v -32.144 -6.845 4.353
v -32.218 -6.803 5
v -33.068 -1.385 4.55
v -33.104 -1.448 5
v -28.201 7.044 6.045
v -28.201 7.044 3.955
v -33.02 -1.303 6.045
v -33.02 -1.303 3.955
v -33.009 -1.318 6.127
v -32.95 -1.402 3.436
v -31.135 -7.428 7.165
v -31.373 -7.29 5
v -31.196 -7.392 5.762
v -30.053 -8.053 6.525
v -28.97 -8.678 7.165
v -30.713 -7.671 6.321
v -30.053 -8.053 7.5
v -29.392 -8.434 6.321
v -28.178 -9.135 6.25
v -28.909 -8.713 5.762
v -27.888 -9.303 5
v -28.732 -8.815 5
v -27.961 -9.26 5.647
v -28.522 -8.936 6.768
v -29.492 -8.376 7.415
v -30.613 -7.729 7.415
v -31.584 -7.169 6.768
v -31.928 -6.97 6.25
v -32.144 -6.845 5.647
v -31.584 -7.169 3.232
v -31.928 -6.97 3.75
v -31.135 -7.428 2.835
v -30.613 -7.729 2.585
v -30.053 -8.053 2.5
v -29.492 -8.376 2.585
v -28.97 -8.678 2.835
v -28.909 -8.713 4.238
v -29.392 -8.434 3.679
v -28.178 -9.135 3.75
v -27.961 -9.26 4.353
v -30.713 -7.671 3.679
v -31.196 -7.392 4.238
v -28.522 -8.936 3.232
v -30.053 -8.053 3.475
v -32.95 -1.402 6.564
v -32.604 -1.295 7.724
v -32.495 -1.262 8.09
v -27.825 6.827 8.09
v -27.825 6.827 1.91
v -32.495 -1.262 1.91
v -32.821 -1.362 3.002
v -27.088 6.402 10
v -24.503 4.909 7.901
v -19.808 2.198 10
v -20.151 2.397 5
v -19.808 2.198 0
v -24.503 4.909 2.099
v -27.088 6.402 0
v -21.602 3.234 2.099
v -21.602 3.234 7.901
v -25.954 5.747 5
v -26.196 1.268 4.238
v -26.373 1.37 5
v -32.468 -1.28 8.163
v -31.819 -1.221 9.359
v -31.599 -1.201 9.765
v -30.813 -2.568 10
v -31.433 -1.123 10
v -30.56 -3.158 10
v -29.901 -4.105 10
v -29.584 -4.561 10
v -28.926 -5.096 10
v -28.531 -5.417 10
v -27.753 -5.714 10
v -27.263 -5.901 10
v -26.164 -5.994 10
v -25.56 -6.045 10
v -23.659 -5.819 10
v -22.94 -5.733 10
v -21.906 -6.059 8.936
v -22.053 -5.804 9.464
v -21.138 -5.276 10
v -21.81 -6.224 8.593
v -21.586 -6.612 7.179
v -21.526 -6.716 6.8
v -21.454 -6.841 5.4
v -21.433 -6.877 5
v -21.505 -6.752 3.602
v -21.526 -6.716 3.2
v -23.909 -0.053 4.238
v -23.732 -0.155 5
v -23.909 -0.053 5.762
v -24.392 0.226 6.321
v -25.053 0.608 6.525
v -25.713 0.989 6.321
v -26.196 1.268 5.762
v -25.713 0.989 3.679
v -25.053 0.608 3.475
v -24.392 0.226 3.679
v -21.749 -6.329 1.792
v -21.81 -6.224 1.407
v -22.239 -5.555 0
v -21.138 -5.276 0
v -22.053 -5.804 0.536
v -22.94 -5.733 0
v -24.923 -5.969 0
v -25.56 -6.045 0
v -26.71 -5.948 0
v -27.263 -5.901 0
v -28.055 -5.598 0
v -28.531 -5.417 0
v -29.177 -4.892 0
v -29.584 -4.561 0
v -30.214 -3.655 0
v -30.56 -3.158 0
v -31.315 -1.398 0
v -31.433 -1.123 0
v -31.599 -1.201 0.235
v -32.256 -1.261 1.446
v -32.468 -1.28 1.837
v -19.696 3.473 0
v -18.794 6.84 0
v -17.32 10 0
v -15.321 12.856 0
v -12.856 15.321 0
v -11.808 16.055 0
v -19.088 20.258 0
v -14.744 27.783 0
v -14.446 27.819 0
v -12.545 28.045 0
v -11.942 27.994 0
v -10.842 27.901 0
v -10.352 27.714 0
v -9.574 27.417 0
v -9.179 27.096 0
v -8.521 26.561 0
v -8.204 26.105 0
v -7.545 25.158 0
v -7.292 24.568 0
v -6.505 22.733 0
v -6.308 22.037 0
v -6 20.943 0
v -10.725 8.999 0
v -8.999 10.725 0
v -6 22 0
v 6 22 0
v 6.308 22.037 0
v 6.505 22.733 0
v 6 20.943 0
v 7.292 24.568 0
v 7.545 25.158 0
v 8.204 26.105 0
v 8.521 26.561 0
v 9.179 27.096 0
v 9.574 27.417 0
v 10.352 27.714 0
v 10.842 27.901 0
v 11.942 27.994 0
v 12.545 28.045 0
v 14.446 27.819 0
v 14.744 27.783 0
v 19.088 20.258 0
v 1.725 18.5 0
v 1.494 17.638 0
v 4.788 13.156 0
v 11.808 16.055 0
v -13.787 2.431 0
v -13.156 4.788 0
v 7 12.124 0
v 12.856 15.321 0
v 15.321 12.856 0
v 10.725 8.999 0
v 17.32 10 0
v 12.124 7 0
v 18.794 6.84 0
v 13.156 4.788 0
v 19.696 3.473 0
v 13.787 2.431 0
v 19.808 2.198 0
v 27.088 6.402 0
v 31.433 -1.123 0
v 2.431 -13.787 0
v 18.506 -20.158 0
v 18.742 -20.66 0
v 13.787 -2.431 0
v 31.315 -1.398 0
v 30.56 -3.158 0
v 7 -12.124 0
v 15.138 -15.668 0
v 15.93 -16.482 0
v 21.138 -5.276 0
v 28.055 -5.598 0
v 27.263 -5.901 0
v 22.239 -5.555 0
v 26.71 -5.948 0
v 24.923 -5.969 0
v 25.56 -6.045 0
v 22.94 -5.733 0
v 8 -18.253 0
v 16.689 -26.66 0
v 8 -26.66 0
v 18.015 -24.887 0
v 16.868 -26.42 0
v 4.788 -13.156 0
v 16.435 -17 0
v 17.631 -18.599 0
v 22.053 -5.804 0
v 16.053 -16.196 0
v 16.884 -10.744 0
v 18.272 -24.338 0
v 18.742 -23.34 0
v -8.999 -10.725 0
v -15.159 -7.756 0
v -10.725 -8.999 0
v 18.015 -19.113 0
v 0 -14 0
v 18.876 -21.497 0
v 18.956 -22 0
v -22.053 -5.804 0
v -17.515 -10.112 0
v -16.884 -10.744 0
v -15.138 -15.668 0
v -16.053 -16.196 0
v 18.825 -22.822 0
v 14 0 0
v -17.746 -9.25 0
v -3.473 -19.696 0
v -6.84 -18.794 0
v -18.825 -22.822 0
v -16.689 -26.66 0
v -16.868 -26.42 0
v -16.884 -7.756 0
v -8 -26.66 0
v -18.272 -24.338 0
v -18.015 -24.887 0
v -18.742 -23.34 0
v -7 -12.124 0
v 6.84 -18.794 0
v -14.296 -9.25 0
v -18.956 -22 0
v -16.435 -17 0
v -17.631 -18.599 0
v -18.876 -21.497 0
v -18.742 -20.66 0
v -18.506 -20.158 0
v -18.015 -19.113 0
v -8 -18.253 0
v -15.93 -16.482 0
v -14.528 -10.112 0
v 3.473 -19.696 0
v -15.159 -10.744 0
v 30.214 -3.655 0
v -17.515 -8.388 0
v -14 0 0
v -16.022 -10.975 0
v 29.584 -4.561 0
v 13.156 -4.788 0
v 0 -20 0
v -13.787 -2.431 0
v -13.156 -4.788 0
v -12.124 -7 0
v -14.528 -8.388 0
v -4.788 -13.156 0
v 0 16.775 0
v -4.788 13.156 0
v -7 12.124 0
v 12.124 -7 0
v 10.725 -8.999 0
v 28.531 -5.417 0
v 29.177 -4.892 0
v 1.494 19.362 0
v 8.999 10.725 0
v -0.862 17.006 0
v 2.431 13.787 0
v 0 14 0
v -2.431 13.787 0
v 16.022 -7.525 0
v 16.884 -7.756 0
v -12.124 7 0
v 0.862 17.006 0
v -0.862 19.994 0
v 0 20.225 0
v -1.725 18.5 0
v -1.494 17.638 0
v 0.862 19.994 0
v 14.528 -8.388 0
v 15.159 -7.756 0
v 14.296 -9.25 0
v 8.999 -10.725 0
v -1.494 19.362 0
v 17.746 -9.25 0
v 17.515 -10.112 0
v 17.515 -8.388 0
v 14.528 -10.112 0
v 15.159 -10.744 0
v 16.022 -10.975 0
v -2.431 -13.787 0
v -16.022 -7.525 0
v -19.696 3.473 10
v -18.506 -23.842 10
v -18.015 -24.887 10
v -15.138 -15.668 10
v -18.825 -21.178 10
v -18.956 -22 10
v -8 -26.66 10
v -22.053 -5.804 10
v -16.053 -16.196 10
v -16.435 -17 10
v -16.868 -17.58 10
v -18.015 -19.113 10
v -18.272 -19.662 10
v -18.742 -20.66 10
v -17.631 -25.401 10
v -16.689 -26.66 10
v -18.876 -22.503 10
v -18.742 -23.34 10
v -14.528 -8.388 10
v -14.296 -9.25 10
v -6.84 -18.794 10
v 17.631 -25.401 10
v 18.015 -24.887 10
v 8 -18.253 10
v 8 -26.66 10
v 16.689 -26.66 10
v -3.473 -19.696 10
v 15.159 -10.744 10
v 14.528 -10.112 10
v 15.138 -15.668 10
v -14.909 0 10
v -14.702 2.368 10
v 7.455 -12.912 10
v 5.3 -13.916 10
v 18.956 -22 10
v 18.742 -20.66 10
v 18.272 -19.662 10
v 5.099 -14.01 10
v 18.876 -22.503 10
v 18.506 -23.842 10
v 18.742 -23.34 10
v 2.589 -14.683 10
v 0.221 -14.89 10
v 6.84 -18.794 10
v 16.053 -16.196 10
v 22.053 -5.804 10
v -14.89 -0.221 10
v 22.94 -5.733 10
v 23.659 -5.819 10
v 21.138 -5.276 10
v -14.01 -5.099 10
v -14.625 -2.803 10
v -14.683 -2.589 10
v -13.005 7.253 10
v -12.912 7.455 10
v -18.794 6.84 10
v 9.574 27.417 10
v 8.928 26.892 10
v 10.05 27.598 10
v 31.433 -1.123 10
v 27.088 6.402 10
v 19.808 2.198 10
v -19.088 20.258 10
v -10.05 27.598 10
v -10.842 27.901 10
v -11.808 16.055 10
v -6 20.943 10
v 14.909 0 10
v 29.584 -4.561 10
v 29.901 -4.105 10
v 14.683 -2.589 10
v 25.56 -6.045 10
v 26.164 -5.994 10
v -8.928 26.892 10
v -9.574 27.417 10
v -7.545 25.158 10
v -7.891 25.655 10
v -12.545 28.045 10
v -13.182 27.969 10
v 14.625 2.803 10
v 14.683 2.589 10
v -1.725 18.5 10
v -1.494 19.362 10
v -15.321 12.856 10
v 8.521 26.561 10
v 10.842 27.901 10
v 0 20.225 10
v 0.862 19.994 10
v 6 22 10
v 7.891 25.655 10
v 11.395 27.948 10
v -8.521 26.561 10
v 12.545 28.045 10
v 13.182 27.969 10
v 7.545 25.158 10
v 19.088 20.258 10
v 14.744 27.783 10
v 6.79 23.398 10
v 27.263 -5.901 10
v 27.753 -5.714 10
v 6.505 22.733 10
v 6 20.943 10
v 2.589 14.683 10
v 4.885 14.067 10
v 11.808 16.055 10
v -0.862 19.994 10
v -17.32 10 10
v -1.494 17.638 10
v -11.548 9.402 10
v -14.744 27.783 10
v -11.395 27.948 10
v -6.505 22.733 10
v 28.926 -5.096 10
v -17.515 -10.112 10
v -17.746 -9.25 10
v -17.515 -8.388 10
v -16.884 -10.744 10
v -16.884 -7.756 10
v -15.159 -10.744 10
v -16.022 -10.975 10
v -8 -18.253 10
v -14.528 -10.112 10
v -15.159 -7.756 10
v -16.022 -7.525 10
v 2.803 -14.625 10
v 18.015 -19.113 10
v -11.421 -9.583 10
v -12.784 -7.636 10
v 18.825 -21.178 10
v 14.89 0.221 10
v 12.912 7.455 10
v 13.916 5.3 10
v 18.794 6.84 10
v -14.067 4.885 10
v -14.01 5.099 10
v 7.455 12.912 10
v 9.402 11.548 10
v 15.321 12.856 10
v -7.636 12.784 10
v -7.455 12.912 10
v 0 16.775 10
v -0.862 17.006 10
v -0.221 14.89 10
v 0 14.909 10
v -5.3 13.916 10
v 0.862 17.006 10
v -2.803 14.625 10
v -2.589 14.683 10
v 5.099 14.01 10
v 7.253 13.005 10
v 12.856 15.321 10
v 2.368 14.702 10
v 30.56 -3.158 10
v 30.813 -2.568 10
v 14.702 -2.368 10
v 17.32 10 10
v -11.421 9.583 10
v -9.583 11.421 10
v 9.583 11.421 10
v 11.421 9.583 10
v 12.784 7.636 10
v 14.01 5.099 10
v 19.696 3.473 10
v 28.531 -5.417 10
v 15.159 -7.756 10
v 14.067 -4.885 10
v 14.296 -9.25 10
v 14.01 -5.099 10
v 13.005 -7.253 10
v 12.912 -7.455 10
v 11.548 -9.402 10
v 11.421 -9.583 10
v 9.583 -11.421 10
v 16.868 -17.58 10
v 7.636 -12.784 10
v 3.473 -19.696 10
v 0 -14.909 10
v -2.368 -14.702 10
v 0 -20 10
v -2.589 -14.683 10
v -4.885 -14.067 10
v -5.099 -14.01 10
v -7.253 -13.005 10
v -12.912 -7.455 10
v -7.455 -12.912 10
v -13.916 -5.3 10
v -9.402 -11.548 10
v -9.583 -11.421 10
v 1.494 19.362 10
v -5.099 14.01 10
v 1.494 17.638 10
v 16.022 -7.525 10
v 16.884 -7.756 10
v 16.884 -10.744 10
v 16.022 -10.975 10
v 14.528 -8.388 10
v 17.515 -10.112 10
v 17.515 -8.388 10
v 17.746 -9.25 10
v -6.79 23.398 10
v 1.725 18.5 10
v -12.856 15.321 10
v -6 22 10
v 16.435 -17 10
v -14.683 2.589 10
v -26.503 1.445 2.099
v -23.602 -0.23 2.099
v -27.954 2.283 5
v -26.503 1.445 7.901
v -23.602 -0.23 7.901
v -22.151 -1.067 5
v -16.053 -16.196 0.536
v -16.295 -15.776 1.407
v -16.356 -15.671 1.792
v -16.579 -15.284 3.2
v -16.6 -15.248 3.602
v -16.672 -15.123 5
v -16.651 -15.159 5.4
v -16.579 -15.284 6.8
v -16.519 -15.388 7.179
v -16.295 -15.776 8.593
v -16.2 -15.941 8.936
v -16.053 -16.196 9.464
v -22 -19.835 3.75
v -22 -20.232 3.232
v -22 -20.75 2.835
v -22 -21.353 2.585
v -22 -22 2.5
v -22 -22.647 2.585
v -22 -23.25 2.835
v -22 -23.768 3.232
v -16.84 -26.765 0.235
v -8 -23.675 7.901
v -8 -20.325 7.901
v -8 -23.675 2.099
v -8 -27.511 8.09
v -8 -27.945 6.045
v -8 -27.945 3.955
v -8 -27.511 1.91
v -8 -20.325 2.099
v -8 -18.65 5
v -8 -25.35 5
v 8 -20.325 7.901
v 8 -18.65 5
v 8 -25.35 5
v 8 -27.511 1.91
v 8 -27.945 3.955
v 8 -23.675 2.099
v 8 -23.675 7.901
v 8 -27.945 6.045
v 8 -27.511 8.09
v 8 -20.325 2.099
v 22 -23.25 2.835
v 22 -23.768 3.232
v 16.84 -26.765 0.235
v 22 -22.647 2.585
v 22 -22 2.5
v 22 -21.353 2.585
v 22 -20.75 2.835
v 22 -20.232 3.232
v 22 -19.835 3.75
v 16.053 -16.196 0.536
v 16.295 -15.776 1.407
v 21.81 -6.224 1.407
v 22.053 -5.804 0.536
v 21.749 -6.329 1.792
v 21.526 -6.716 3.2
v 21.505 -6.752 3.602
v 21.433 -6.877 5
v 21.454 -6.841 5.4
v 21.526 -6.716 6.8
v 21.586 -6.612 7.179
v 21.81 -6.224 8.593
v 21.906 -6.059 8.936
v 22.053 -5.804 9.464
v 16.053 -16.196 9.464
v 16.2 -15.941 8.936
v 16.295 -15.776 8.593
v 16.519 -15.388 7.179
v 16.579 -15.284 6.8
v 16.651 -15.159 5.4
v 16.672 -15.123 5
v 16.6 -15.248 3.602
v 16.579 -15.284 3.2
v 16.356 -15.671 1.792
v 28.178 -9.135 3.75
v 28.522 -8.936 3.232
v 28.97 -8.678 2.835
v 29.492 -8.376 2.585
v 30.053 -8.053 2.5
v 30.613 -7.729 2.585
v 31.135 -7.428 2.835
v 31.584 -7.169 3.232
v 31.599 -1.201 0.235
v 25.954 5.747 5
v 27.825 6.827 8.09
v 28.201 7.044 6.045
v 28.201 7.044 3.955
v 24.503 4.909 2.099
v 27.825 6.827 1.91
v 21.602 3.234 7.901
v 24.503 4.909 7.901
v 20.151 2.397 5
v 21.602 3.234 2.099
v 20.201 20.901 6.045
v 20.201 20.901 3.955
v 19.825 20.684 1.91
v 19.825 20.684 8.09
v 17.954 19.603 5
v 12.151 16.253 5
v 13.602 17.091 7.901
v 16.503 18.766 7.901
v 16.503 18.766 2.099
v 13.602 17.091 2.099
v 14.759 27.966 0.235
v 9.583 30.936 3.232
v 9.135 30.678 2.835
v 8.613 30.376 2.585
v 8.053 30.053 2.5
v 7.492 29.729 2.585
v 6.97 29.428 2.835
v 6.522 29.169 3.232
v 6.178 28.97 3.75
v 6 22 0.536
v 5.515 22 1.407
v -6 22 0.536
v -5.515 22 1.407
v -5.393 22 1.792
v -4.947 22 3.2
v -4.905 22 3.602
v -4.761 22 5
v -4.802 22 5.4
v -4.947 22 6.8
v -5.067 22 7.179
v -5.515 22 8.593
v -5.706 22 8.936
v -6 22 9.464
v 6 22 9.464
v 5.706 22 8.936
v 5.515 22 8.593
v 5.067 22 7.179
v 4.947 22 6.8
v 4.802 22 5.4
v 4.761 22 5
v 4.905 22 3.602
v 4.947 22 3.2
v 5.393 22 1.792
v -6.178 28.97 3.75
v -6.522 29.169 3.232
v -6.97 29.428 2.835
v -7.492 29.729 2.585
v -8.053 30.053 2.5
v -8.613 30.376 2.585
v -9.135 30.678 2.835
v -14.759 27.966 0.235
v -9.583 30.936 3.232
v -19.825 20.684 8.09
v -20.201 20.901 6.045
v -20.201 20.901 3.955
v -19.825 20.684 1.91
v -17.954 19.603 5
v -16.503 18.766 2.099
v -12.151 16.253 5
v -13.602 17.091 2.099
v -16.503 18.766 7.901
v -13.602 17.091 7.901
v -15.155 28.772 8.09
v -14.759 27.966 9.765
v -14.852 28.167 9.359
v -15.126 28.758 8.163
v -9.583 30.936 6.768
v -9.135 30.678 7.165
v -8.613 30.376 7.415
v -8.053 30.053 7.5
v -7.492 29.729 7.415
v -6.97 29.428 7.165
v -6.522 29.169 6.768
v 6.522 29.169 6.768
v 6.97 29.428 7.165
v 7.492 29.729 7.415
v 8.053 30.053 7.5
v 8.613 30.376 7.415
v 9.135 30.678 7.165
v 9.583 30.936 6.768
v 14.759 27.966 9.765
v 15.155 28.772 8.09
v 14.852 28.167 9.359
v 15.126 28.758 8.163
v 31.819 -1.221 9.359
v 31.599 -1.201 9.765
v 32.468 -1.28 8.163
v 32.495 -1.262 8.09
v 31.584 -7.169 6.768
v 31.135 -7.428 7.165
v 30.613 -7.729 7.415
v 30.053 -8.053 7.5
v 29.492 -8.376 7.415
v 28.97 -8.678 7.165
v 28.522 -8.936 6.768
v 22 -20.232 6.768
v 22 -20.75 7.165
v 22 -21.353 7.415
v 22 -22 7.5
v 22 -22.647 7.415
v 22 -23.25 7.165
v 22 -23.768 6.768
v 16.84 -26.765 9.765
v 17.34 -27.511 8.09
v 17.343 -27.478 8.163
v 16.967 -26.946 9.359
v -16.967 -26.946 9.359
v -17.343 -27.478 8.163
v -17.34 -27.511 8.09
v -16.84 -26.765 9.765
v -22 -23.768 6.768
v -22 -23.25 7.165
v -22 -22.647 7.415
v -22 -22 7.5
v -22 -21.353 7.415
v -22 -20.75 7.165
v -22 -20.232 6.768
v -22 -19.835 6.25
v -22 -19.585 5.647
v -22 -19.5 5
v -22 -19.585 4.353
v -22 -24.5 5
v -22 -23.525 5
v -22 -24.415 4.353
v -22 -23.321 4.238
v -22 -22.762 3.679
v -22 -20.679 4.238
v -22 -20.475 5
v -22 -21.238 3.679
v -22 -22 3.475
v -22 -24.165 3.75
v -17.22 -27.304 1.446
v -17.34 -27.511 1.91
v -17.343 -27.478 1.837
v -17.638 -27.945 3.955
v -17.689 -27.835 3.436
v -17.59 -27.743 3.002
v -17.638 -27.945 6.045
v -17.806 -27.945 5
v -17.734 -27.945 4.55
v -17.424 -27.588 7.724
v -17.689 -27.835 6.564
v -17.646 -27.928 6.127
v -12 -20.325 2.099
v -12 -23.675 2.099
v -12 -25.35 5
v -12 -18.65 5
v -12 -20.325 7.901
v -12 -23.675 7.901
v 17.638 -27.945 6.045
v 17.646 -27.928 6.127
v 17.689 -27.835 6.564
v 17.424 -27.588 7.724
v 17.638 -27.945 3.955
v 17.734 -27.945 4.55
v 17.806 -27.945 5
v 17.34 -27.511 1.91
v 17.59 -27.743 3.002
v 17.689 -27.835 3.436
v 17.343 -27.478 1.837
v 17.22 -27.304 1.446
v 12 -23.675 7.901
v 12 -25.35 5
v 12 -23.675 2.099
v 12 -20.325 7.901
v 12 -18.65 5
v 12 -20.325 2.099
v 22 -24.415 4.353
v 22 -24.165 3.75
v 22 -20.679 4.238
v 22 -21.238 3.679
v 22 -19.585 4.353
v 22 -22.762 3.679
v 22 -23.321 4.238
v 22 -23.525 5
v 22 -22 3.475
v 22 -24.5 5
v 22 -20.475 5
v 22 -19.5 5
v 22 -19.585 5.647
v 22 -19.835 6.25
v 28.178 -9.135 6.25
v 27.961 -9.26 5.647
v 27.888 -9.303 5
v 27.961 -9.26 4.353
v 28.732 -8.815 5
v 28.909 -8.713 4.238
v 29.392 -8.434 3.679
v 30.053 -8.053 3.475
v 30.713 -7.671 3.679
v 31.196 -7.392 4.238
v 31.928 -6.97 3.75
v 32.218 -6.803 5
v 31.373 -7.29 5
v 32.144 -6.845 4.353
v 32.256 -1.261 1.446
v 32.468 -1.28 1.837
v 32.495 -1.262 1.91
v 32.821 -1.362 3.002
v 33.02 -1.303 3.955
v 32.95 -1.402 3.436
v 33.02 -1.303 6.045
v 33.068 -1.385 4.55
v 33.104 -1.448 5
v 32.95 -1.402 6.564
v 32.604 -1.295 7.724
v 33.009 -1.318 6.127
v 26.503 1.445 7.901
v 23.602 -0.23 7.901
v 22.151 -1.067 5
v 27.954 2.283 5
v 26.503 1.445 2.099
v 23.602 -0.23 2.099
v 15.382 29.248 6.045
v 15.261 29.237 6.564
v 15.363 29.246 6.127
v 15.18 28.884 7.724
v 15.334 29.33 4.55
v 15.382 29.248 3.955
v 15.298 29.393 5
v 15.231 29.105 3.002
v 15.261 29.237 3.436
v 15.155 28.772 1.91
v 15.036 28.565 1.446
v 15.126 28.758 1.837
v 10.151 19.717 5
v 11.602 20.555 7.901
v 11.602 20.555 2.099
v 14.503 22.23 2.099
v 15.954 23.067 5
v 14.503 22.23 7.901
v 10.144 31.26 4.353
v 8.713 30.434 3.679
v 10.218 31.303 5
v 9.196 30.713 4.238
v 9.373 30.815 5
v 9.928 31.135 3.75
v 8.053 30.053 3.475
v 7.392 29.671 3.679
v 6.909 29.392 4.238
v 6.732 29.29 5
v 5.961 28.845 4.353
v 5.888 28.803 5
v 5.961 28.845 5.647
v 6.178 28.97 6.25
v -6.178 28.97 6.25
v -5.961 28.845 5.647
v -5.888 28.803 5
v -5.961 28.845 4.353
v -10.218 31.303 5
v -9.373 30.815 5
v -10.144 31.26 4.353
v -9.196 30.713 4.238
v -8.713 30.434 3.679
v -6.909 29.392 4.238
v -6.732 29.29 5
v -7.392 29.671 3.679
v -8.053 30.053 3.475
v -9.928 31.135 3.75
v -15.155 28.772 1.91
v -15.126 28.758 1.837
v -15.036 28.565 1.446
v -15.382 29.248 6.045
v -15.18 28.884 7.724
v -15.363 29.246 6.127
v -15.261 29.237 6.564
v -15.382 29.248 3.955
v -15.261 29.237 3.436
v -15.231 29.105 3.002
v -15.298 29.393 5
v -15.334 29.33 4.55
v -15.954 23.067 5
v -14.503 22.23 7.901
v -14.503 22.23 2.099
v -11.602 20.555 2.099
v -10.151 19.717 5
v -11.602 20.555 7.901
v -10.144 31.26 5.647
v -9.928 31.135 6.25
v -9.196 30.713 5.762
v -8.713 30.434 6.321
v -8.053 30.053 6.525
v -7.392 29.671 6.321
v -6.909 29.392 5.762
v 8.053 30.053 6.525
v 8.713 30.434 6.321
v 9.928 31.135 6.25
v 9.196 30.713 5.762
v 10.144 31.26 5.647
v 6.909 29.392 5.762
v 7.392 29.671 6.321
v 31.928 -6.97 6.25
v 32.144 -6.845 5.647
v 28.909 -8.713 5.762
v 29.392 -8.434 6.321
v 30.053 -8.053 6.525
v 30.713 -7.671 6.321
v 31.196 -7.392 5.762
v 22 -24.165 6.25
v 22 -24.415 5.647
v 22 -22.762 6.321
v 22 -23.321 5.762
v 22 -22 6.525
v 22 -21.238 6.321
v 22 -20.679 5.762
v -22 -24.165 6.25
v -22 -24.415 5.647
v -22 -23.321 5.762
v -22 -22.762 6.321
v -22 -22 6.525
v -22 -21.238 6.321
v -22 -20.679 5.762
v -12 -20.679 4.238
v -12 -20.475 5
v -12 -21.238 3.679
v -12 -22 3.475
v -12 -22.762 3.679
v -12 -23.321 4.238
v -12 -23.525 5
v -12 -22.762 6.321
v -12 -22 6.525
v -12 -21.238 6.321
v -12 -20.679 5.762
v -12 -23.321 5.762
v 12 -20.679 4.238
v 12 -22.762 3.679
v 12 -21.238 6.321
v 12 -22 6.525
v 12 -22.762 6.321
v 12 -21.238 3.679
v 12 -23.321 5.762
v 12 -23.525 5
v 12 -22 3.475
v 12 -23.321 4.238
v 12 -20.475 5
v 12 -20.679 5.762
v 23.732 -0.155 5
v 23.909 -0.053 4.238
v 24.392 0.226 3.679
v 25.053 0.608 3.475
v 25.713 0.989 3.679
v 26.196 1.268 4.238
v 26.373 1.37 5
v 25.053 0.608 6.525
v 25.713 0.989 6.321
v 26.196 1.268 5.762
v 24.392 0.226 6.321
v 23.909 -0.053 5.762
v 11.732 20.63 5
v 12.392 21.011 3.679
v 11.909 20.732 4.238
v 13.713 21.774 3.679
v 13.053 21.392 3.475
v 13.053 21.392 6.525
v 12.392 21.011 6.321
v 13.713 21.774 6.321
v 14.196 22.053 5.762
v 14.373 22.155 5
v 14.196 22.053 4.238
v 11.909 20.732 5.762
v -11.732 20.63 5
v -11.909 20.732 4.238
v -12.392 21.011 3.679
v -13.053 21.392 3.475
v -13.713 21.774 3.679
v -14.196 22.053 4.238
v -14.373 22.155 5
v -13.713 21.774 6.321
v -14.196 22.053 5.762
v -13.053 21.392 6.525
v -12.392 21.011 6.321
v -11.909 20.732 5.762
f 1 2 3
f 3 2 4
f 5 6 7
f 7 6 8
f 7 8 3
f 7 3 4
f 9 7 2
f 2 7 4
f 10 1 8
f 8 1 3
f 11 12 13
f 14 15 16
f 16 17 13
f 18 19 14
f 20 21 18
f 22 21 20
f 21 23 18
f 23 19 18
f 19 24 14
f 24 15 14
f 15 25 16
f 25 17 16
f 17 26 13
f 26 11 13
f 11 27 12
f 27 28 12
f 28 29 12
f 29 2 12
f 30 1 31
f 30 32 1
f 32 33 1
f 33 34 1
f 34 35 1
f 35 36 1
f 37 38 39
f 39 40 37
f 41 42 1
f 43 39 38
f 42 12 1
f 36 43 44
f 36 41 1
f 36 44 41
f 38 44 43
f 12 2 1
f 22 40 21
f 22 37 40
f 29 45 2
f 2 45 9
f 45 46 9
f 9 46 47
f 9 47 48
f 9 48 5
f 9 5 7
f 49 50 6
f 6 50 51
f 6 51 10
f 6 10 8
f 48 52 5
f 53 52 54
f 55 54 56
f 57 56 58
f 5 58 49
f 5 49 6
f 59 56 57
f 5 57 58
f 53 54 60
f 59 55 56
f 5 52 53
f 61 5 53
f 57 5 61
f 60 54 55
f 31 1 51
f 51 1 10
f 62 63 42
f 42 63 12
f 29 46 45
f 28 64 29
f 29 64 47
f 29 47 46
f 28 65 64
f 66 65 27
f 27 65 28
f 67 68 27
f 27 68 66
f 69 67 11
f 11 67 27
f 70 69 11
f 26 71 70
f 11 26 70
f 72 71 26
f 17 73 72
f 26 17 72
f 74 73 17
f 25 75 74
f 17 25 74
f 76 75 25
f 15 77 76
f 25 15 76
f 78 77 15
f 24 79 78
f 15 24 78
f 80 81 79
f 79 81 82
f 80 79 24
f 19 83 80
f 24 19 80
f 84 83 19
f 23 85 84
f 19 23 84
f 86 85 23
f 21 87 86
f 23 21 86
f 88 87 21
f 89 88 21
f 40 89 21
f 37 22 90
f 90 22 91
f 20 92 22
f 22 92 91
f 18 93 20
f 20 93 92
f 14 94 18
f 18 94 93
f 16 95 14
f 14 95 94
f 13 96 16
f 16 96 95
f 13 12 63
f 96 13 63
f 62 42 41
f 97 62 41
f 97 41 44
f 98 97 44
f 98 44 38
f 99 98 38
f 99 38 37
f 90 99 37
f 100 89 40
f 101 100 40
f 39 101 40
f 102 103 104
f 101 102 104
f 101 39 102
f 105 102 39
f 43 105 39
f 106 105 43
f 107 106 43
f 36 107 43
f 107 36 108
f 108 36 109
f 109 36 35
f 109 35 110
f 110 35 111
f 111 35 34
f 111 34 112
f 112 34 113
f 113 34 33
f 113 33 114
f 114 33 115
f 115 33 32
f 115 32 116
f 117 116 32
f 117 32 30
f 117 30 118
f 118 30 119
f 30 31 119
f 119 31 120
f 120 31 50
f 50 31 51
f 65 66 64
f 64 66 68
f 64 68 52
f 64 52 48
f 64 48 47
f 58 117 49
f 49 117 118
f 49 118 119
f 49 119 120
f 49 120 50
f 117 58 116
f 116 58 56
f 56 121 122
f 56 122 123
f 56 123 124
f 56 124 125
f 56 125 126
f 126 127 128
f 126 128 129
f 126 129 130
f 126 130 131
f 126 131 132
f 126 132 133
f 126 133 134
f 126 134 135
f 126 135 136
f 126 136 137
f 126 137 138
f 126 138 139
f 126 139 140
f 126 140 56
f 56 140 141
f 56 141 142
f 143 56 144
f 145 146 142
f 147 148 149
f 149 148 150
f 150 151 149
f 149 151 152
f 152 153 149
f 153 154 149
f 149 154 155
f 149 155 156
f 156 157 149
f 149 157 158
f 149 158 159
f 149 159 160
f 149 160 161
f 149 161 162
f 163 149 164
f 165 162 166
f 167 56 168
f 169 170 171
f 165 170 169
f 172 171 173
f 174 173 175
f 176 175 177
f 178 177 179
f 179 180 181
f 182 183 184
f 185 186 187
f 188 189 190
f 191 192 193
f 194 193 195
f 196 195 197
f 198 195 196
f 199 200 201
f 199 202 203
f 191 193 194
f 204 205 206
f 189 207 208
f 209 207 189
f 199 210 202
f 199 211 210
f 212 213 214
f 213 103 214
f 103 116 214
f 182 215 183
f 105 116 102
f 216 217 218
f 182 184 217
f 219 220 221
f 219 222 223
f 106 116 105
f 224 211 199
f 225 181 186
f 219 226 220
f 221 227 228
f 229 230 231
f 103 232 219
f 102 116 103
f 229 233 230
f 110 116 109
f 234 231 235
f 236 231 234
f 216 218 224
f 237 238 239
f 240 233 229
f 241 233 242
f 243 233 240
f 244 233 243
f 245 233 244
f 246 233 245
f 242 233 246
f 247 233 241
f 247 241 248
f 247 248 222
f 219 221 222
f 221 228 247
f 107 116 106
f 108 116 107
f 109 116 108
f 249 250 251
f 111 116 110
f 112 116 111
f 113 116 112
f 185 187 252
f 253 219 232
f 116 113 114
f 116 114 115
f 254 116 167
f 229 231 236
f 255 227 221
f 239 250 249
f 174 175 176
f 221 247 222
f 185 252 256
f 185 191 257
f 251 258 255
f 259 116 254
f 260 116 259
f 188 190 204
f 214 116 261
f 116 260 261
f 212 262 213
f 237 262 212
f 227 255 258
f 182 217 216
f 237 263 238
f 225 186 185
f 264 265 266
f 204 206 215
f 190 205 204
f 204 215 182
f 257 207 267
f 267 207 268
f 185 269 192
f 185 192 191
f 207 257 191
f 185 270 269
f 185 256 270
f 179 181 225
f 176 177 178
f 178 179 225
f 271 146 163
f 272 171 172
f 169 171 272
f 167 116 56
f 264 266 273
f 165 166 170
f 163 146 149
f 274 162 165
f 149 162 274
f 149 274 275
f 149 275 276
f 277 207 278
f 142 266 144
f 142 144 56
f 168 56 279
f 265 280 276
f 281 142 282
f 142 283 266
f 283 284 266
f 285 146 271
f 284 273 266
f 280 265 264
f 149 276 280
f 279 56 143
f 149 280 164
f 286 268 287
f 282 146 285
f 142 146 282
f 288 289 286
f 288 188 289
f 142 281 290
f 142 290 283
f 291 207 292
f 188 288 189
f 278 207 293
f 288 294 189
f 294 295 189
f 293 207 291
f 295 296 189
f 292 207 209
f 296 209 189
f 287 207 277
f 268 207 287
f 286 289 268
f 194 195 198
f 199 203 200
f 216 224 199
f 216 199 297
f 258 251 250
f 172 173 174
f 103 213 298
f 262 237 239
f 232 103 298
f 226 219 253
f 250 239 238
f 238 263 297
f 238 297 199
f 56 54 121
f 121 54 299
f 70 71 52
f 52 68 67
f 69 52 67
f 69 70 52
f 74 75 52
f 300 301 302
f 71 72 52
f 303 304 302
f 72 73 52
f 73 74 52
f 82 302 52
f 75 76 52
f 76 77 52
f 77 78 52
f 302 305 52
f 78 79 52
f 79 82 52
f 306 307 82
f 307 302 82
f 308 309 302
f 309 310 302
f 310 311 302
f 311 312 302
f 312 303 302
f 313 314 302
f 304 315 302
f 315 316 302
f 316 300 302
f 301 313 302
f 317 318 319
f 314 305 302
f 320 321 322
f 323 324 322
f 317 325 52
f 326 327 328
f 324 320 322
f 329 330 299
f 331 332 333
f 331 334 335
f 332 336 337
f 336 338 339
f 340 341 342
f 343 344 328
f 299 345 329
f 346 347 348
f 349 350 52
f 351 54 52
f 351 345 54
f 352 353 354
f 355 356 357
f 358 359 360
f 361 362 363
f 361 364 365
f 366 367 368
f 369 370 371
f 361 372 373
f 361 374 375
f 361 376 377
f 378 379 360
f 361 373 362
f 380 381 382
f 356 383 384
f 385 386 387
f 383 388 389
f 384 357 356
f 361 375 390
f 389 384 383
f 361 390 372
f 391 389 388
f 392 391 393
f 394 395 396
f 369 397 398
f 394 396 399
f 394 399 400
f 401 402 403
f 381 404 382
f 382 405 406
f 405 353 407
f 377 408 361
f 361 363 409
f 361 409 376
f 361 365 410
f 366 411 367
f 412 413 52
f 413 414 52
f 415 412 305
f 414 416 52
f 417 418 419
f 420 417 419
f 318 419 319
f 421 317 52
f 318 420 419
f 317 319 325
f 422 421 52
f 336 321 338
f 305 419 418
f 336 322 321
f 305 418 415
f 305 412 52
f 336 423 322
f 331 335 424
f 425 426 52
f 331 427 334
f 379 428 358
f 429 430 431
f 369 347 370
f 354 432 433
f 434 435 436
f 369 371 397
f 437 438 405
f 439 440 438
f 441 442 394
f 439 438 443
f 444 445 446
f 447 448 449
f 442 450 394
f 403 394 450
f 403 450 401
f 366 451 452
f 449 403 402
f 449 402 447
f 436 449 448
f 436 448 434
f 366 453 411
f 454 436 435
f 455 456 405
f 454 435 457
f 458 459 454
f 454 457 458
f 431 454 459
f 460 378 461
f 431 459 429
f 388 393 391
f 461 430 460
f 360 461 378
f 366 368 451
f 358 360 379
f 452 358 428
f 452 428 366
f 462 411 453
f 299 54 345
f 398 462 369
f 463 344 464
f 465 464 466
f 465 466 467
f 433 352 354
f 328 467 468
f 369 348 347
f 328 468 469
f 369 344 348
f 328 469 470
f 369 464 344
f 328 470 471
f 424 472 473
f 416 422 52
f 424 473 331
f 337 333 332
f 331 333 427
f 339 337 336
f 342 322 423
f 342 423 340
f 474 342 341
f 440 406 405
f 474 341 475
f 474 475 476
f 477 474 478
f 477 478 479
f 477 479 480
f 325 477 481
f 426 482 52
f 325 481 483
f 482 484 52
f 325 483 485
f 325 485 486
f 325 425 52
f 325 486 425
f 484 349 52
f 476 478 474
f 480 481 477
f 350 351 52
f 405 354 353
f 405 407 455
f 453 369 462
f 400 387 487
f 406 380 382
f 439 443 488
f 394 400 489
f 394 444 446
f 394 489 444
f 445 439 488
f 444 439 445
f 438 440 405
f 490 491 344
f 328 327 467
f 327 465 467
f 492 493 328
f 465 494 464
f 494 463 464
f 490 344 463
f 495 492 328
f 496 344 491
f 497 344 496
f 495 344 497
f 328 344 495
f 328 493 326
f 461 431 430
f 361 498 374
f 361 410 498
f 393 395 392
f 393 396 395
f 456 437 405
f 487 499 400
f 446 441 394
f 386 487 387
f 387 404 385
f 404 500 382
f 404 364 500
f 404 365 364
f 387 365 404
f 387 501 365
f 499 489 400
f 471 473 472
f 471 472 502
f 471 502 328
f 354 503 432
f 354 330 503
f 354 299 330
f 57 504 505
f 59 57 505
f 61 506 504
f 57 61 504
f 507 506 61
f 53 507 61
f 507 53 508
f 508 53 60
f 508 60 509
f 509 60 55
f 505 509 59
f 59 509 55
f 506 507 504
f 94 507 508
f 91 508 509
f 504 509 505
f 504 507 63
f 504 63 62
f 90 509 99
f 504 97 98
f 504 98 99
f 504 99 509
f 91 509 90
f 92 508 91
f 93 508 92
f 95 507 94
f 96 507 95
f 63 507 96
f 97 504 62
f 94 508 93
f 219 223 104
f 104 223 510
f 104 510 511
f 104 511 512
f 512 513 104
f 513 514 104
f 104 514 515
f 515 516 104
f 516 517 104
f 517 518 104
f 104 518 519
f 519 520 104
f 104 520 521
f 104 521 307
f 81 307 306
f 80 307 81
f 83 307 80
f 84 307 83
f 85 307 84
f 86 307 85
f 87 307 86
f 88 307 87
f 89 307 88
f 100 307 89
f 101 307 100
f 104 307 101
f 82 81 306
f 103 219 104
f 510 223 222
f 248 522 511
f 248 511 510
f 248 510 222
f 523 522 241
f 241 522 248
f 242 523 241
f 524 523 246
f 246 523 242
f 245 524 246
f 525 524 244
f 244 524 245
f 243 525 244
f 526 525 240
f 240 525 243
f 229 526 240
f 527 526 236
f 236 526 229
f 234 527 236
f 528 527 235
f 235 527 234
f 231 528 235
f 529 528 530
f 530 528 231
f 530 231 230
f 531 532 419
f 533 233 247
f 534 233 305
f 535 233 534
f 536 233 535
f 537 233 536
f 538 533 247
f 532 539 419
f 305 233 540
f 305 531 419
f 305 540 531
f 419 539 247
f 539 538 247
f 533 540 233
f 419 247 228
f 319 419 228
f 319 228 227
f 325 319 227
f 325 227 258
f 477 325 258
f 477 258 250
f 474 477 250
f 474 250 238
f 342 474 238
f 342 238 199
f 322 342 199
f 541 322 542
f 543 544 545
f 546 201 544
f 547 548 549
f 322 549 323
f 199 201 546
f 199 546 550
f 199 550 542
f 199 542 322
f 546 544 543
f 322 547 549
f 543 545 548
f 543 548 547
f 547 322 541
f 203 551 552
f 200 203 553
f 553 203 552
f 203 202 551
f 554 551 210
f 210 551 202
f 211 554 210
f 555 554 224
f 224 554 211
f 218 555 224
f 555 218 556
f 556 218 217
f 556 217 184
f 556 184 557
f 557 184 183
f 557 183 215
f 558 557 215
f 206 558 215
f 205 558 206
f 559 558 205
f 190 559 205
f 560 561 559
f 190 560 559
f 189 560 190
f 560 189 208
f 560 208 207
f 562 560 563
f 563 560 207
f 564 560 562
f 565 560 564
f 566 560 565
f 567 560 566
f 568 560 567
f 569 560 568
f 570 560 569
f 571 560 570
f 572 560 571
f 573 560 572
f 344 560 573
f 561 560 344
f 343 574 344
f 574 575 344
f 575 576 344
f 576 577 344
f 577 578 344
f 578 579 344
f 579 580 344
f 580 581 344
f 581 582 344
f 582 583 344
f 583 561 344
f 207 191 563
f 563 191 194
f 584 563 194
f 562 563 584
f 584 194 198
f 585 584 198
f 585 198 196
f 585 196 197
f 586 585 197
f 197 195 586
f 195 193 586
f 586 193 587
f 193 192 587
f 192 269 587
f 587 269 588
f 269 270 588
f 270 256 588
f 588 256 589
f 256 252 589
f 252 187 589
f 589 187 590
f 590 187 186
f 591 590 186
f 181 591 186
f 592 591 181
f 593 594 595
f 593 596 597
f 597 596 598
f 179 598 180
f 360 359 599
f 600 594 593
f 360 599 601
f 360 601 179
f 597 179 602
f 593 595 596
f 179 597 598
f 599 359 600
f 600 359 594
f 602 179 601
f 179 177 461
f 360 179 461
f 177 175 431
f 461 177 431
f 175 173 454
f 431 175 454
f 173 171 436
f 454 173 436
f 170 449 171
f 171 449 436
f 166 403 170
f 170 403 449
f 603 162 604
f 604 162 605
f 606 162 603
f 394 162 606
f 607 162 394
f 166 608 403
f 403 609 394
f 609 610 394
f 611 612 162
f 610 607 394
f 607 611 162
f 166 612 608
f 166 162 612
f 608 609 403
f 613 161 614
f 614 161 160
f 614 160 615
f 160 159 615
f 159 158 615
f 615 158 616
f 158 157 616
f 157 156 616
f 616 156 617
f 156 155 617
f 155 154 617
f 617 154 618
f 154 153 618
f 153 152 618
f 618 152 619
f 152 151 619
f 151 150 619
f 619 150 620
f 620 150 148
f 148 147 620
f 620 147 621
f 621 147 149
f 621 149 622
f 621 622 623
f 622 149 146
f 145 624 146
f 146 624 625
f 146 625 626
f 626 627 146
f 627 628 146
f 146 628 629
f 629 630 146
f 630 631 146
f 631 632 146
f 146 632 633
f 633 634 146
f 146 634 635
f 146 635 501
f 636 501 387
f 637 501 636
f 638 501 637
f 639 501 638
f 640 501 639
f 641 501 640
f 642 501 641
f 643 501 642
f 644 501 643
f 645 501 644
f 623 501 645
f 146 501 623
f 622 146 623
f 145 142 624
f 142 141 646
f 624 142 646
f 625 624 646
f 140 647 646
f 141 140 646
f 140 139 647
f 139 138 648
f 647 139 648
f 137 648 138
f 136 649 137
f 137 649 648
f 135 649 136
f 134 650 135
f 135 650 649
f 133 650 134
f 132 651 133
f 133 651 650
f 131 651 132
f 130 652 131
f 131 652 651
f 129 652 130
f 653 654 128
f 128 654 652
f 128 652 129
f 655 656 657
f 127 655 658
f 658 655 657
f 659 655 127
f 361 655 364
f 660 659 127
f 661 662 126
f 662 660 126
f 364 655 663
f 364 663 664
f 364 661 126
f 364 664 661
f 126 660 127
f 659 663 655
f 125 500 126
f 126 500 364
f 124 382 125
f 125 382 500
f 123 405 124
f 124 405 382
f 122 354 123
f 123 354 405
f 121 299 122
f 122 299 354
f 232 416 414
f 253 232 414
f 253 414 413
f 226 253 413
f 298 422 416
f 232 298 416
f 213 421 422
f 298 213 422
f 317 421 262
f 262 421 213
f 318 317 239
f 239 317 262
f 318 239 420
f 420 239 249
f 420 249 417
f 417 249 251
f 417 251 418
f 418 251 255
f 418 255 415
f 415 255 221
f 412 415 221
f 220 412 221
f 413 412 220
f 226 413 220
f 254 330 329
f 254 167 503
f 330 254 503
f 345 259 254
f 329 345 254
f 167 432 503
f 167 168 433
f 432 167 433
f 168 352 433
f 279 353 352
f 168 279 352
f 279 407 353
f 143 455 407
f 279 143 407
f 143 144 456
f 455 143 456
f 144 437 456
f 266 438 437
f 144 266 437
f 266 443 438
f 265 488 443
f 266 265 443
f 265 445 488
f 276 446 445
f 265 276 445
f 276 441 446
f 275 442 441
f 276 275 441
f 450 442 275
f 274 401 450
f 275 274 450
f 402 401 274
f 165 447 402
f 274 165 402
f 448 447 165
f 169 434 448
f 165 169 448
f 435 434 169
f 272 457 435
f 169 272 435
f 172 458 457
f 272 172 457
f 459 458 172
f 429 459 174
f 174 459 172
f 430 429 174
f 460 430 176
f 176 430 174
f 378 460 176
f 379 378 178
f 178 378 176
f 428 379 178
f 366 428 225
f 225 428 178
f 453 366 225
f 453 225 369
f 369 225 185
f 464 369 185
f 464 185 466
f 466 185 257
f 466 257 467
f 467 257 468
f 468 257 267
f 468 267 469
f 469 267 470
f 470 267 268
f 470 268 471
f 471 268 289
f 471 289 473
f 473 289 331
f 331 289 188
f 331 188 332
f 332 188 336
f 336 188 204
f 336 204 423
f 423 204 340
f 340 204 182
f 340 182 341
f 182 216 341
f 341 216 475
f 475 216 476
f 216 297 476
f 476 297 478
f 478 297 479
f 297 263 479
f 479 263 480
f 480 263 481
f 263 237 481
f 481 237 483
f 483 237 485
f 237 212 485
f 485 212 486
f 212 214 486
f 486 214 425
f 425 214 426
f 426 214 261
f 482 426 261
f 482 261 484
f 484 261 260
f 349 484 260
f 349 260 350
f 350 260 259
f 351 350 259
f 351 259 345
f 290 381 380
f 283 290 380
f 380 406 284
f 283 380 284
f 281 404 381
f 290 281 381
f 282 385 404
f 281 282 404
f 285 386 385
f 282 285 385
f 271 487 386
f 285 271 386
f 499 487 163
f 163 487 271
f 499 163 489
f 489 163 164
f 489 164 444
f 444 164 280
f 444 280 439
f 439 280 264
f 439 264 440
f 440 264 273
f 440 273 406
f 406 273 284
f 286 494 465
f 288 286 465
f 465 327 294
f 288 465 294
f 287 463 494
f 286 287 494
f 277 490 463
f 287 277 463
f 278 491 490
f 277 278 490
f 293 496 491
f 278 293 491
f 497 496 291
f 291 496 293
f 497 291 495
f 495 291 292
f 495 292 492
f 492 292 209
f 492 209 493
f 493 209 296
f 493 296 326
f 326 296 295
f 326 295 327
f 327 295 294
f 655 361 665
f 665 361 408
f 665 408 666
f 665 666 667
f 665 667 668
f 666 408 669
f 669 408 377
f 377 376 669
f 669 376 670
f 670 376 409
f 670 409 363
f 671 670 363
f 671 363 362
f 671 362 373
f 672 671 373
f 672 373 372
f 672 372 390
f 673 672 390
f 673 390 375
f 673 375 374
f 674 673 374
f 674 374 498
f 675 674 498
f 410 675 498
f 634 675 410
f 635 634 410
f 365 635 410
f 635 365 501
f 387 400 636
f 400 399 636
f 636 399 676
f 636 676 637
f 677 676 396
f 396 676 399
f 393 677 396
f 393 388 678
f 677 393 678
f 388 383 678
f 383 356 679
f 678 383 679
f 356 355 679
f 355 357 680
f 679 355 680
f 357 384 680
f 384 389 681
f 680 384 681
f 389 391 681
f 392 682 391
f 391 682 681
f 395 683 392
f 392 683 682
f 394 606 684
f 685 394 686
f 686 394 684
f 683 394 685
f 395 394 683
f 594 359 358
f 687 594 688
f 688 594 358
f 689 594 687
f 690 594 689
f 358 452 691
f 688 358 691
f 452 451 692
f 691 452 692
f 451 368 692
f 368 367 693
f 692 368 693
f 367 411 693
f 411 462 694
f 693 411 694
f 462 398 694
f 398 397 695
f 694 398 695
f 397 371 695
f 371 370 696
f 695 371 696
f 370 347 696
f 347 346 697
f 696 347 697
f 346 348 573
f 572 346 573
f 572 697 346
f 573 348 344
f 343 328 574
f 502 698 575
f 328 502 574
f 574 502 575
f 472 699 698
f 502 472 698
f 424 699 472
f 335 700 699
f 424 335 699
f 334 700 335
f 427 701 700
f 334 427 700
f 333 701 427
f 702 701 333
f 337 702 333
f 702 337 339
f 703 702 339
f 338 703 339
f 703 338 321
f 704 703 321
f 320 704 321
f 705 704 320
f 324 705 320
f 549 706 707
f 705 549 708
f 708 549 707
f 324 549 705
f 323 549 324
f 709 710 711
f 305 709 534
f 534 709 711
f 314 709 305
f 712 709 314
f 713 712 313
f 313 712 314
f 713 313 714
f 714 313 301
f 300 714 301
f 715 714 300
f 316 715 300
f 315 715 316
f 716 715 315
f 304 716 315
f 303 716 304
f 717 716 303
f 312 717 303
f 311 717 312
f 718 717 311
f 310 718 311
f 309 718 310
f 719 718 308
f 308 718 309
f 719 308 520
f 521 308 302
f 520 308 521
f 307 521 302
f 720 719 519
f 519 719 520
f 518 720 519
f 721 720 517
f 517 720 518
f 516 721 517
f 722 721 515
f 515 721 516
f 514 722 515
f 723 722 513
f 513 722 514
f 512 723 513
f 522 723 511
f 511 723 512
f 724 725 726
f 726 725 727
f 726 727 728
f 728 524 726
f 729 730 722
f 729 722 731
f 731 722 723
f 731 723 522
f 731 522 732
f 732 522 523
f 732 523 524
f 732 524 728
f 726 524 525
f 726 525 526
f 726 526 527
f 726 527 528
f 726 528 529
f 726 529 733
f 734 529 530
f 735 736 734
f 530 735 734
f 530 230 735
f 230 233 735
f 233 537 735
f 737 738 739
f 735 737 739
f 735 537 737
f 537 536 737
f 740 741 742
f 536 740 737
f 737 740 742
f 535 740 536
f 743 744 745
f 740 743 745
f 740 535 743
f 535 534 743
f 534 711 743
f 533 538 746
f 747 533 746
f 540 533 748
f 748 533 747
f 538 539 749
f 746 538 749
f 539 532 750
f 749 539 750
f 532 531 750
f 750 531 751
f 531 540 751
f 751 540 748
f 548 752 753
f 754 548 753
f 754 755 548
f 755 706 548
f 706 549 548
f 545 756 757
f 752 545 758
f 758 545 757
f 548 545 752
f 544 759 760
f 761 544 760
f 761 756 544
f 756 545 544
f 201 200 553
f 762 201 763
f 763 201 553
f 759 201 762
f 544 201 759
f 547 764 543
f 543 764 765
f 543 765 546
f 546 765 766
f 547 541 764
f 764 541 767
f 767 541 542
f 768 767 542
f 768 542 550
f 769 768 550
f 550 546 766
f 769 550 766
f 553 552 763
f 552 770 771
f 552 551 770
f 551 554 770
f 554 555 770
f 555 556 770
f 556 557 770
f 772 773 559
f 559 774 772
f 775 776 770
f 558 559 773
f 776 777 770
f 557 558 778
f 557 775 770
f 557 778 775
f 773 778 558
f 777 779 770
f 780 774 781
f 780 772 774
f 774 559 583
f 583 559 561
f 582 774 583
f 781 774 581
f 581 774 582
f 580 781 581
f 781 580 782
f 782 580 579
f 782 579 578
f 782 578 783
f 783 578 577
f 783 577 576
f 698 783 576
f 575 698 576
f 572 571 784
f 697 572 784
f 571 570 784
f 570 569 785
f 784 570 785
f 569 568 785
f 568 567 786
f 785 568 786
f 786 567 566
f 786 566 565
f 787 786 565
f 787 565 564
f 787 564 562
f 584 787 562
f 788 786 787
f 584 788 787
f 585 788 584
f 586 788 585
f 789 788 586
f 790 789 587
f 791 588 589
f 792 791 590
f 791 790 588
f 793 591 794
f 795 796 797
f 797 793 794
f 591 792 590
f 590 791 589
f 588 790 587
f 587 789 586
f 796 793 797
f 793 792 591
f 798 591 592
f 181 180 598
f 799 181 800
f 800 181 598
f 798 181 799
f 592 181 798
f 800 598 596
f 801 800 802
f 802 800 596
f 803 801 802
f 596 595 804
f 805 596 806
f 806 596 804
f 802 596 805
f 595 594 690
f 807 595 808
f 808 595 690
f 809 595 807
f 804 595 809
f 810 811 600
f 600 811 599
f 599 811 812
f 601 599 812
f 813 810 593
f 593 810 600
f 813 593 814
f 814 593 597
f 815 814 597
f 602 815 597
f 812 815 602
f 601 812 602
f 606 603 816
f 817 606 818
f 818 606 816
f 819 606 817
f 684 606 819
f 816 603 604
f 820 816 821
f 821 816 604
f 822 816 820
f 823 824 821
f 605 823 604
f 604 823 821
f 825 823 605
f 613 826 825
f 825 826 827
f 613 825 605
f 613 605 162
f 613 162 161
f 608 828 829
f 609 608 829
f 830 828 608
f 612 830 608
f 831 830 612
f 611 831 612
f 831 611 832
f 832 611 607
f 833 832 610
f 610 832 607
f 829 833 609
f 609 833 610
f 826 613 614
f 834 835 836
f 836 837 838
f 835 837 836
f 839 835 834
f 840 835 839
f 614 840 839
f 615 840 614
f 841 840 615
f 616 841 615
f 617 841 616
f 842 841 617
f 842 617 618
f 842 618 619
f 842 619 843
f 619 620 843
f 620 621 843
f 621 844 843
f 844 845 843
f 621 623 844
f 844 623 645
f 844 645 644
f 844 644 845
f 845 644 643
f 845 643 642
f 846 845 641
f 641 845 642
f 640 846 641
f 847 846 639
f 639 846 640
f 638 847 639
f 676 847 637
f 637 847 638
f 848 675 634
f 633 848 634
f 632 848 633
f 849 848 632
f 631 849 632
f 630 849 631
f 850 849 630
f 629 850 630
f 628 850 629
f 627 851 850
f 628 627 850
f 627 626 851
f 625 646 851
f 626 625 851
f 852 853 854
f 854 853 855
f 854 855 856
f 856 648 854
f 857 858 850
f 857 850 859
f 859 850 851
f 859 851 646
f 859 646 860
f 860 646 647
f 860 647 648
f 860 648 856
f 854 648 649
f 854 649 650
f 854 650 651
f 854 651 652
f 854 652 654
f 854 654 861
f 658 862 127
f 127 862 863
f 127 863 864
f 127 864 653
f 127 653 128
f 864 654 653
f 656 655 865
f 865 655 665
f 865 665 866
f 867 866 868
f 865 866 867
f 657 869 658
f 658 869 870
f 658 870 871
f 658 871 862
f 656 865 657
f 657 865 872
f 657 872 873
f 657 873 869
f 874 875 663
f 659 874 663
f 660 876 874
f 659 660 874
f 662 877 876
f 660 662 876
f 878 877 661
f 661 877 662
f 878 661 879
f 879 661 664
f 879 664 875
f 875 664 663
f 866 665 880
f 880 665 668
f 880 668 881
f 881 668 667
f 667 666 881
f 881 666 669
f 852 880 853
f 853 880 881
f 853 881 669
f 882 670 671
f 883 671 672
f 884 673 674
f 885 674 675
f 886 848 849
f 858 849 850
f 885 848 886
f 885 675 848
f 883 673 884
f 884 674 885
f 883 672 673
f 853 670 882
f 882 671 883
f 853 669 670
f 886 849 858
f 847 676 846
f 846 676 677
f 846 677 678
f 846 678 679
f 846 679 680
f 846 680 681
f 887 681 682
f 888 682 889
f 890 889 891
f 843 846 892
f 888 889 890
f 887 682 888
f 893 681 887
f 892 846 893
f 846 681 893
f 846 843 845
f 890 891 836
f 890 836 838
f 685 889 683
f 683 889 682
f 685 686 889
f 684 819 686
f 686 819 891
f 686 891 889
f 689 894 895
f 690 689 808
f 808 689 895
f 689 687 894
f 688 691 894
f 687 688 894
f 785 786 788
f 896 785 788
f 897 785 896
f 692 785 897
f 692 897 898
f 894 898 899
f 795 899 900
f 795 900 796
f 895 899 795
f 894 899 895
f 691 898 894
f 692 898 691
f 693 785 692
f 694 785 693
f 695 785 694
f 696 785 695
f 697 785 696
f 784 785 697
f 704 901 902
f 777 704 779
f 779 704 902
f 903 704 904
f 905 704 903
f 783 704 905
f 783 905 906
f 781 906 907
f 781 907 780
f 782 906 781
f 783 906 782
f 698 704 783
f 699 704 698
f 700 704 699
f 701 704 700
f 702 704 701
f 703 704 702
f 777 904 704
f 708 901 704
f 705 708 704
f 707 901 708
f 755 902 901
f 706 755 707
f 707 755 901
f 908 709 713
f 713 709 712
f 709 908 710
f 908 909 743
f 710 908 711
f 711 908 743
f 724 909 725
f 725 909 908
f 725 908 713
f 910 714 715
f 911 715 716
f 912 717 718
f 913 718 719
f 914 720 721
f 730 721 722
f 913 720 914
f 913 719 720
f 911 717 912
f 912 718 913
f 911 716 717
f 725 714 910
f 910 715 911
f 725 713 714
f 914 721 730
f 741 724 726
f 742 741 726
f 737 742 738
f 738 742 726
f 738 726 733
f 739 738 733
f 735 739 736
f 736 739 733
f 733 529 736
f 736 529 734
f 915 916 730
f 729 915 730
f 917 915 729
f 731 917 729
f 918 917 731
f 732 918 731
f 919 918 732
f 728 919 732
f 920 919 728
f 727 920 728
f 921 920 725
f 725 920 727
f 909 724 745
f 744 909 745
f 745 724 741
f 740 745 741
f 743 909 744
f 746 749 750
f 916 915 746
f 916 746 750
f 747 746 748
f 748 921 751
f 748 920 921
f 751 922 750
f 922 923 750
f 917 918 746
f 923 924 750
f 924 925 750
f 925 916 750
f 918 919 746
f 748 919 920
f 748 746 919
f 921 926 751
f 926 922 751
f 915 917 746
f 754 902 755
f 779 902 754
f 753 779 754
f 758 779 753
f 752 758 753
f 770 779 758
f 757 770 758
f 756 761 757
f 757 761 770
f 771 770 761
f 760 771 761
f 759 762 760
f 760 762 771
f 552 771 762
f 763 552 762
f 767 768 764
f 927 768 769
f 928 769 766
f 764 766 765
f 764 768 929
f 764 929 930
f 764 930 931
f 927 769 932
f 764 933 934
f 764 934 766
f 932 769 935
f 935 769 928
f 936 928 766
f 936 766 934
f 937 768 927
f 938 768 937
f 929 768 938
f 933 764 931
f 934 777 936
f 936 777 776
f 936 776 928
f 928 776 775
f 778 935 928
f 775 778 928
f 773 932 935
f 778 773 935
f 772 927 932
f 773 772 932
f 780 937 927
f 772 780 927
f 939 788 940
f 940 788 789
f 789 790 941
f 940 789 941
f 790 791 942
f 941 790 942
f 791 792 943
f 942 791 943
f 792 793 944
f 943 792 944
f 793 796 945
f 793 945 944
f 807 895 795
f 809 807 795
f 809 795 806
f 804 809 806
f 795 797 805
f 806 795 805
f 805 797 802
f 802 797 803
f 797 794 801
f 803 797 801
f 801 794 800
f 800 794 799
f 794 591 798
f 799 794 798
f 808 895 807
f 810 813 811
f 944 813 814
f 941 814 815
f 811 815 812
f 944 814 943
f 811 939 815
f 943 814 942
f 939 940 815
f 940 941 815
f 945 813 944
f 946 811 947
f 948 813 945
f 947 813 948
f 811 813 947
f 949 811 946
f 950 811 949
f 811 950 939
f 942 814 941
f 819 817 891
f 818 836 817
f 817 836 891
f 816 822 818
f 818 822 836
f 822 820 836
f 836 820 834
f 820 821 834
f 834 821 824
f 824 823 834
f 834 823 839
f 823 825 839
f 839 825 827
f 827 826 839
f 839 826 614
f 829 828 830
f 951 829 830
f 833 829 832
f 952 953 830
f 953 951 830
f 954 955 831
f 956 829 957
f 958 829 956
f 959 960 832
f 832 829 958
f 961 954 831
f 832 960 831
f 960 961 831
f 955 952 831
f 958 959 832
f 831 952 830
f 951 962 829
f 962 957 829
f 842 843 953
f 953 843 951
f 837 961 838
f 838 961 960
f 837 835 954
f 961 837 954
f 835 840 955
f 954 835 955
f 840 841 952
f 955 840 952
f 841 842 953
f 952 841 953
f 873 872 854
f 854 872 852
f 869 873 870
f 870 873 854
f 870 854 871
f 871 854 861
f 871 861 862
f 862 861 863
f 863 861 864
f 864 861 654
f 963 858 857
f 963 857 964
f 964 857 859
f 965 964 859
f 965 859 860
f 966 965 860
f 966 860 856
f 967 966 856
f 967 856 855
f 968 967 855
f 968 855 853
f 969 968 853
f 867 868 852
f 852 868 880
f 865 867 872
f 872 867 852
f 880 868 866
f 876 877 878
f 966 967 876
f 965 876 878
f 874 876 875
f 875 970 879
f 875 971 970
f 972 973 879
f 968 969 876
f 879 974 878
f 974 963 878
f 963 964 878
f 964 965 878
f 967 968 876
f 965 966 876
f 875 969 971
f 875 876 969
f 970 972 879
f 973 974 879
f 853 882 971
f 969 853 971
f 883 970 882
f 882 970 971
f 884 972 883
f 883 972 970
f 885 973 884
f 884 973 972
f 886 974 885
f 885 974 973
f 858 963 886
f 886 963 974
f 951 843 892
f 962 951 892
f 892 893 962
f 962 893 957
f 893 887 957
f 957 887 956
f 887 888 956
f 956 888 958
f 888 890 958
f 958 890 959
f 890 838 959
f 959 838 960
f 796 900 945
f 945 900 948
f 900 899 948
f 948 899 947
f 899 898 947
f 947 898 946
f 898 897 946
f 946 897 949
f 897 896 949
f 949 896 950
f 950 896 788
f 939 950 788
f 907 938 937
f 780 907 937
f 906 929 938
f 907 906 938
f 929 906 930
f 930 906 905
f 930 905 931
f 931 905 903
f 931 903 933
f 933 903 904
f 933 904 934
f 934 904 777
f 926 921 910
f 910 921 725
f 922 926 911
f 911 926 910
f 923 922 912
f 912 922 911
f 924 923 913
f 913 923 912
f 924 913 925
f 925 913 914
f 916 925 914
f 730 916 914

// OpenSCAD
// file: configuration.scad
// Increase this if your slicer or printer make holes too tight.
extra_radius = 0.1;

// OD = outside diameter, corner to corner.
m3_nut_od = 6.1;
m3_nut_radius = m3_nut_od/2 + 0.2 + extra_radius;

// Major diameter of metric 3mm thread.
m3_major = 2.85;
m3_radius = m3_major/2 + extra_radius;
m3_wide_radius = m3_major/2 + extra_radius + 0.2;

// OD = outside diameter, corner to corner.
m5_nut_od = 8.1;
m5_nut_radius = m5_nut_od/2 + 0.2 + extra_radius;

// Major diameter of metric 5mm thread.
m5_major = 4.85;
m5_radius = m5_major/2 + extra_radius;
m5_wide_radius = m5_major/2 + extra_radius + 0.2;

// NEMA17 stepper motors.
motor_shaft_diameter = 5;
motor_shaft_radius = motor_shaft_diameter/2 + extra_radius;

// Frame brackets. M3x8mm screws work best with 3.6 mm brackets.
thickness = 3.6;

// OpenBeam or Misumi. Currently only 15x15 mm, but there is a plan
// to make models more parametric and allow 20x20 mm in the future.
extrusion = 15;
// main file
include <configuration.scad>;

separation = 44;  // Distance between ball joint mounting faces.
offset = 22;  // Same as DELTA_EFFECTOR_OFFSET in Marlin.
mount_radius = 18.5;  // Hotend mounting screws, standard would be 25mm.
hotend_radius = 14;  // Hole for the hotend (J-Head diameter is 16mm).
height = 10;
cone_r1 = 2.5;
cone_r2 = 14;


module effector() {
  difference() {
    union() {
      cylinder(r=offset-2, h=height, center=true, $fn=36);
      for (a = [60:120:359]) rotate([0, 0, a]) {
	rotate([0, 0, 30]) translate([offset-2, 0, 0])
	  cube([4, 12, height], center=true);
	for (s = [-1, 1]) scale([s, 1, 1]) {
	  translate([0, offset, 0]) difference() {
	    intersection() {
	      cube([separation, 40, height], center=true);
	      translate([0, -4, 0]) rotate([0, 90, 0])
		cylinder(r=10, h=separation, center=true);
	      translate([separation/2-7, 0, 0]) rotate([0, 90, 0])
		cylinder(r1=cone_r2, r2=cone_r1, h=14, center=true, $fn=24);
	    }
	    rotate([0, 90, 0])
	      cylinder(r=m3_radius, h=separation+1, center=true, $fn=12);
	    rotate([90, 0, 90])
	      cylinder(r=m3_nut_radius, h=separation-20, center=true, $fn=6);
	  }
        }
      }
    }
    translate([0, 0, -height/2])
	cylinder(r1=hotend_radius, r2=hotend_radius+1, h=height+1, $fn=36);
    for (a = [0:120:359]) rotate([0, 0, a]) {
      translate([0, mount_radius, 0])
	cylinder(r=m3_wide_radius, h=2*height, center=true, $fn=12);
    }
  }
}

translate([0, 0, height/2]) effector();
